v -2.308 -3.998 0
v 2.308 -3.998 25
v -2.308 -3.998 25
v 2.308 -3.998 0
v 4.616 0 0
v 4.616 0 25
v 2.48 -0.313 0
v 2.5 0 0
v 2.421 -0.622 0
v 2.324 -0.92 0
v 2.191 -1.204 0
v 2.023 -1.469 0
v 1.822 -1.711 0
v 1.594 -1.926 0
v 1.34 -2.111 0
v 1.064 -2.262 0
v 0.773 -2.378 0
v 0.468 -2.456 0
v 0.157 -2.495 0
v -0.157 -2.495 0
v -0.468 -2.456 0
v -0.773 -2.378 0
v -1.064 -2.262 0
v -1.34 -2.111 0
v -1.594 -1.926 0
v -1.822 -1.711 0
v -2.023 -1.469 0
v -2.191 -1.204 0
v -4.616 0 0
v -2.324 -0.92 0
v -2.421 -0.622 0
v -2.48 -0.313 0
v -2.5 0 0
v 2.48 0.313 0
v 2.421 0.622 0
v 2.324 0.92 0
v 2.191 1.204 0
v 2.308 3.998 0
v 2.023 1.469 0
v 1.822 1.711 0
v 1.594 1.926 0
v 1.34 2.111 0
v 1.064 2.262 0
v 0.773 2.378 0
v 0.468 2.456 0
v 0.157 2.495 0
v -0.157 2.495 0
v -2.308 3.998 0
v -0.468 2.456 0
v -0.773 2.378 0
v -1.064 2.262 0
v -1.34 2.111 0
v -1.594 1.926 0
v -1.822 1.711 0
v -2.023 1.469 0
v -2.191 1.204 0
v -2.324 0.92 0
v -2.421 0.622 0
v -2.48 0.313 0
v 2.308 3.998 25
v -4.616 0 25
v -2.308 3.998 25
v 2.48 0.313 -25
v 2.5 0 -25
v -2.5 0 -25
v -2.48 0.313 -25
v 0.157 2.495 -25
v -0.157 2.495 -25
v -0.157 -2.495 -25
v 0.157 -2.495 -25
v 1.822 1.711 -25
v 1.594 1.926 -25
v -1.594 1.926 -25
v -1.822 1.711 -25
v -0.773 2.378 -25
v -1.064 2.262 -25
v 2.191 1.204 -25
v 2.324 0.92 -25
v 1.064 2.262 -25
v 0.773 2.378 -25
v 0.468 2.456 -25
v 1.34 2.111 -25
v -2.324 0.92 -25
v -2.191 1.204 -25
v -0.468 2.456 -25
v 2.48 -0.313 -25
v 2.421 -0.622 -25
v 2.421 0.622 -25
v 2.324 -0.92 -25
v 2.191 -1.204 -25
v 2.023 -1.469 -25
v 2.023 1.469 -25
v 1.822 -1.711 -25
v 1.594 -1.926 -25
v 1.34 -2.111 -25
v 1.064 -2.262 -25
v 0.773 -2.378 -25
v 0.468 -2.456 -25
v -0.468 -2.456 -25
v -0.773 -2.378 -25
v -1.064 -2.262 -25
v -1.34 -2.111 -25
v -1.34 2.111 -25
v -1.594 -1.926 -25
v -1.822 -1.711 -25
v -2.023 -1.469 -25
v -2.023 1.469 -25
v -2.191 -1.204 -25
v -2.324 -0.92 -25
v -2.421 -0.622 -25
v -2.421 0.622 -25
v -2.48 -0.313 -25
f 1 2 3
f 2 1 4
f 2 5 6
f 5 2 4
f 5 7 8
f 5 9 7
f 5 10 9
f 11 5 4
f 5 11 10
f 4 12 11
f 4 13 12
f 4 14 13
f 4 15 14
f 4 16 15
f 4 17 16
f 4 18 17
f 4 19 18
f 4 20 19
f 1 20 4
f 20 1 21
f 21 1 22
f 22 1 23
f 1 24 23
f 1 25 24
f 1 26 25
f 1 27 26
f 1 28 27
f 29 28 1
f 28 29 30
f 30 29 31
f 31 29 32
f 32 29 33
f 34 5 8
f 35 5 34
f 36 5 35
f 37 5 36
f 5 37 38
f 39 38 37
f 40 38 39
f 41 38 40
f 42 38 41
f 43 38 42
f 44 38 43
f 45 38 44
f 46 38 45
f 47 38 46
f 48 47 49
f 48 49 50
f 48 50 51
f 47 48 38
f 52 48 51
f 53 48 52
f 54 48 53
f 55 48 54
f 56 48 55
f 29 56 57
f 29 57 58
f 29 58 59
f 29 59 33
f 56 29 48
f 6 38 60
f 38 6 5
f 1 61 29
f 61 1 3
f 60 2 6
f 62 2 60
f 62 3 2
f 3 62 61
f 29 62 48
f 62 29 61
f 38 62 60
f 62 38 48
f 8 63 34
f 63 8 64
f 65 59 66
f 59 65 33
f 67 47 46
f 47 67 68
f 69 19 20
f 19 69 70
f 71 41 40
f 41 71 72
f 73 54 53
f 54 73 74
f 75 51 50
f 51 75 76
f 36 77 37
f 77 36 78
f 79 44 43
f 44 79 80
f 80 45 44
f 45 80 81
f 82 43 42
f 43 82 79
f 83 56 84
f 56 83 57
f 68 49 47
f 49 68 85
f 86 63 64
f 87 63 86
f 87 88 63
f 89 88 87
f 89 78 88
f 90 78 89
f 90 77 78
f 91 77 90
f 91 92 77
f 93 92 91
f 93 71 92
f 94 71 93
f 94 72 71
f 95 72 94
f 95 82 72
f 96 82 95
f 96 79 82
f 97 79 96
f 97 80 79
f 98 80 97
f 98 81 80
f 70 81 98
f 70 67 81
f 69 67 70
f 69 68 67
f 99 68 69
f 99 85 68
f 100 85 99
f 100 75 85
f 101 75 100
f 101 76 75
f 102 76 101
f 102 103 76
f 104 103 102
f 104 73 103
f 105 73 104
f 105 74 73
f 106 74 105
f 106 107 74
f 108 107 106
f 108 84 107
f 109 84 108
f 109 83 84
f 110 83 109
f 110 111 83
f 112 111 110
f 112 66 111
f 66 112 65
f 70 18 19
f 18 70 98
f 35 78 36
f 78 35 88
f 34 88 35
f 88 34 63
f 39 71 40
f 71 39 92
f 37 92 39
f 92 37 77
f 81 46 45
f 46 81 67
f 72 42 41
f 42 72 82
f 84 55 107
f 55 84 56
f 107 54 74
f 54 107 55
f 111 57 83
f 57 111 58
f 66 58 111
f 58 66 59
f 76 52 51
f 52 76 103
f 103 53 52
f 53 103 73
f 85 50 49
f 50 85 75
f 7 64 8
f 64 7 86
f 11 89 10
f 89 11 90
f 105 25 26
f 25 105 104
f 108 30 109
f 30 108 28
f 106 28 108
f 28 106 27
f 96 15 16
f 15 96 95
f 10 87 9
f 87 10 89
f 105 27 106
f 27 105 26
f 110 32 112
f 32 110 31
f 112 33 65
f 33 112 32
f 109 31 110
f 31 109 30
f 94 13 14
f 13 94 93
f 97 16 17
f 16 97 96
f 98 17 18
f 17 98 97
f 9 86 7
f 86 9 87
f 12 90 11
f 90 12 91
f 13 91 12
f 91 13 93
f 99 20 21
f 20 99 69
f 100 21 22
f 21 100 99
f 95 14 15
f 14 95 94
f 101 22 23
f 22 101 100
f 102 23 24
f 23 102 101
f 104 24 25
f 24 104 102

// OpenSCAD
$fn = 50;


difference() {
	union() {
		translate(v = [0, 0, 0]) {
			rotate(a = [0, 0, 0]) {
				translate(v = [0, 0, 0]) {
					rotate(a = [0, 0, 0]) {
						linear_extrude(height = 25) {
							polygon(points = [[4.6160000000, 0.0000000000], [2.3080000000, 3.9975732639], [-2.3080000000, 3.9975732639], [-4.6160000000, 0.0000000000], [-2.3080000000, -3.9975732639], [2.3080000000, -3.9975732639]]);
						}
					}
				}
			}
		}
		translate(v = [0, 0, -25]) {
			rotate(a = [0, 0, 0]) {
				cylinder(h = 25, r = 2.5000000000);
			}
		}
	}
	union();
}
